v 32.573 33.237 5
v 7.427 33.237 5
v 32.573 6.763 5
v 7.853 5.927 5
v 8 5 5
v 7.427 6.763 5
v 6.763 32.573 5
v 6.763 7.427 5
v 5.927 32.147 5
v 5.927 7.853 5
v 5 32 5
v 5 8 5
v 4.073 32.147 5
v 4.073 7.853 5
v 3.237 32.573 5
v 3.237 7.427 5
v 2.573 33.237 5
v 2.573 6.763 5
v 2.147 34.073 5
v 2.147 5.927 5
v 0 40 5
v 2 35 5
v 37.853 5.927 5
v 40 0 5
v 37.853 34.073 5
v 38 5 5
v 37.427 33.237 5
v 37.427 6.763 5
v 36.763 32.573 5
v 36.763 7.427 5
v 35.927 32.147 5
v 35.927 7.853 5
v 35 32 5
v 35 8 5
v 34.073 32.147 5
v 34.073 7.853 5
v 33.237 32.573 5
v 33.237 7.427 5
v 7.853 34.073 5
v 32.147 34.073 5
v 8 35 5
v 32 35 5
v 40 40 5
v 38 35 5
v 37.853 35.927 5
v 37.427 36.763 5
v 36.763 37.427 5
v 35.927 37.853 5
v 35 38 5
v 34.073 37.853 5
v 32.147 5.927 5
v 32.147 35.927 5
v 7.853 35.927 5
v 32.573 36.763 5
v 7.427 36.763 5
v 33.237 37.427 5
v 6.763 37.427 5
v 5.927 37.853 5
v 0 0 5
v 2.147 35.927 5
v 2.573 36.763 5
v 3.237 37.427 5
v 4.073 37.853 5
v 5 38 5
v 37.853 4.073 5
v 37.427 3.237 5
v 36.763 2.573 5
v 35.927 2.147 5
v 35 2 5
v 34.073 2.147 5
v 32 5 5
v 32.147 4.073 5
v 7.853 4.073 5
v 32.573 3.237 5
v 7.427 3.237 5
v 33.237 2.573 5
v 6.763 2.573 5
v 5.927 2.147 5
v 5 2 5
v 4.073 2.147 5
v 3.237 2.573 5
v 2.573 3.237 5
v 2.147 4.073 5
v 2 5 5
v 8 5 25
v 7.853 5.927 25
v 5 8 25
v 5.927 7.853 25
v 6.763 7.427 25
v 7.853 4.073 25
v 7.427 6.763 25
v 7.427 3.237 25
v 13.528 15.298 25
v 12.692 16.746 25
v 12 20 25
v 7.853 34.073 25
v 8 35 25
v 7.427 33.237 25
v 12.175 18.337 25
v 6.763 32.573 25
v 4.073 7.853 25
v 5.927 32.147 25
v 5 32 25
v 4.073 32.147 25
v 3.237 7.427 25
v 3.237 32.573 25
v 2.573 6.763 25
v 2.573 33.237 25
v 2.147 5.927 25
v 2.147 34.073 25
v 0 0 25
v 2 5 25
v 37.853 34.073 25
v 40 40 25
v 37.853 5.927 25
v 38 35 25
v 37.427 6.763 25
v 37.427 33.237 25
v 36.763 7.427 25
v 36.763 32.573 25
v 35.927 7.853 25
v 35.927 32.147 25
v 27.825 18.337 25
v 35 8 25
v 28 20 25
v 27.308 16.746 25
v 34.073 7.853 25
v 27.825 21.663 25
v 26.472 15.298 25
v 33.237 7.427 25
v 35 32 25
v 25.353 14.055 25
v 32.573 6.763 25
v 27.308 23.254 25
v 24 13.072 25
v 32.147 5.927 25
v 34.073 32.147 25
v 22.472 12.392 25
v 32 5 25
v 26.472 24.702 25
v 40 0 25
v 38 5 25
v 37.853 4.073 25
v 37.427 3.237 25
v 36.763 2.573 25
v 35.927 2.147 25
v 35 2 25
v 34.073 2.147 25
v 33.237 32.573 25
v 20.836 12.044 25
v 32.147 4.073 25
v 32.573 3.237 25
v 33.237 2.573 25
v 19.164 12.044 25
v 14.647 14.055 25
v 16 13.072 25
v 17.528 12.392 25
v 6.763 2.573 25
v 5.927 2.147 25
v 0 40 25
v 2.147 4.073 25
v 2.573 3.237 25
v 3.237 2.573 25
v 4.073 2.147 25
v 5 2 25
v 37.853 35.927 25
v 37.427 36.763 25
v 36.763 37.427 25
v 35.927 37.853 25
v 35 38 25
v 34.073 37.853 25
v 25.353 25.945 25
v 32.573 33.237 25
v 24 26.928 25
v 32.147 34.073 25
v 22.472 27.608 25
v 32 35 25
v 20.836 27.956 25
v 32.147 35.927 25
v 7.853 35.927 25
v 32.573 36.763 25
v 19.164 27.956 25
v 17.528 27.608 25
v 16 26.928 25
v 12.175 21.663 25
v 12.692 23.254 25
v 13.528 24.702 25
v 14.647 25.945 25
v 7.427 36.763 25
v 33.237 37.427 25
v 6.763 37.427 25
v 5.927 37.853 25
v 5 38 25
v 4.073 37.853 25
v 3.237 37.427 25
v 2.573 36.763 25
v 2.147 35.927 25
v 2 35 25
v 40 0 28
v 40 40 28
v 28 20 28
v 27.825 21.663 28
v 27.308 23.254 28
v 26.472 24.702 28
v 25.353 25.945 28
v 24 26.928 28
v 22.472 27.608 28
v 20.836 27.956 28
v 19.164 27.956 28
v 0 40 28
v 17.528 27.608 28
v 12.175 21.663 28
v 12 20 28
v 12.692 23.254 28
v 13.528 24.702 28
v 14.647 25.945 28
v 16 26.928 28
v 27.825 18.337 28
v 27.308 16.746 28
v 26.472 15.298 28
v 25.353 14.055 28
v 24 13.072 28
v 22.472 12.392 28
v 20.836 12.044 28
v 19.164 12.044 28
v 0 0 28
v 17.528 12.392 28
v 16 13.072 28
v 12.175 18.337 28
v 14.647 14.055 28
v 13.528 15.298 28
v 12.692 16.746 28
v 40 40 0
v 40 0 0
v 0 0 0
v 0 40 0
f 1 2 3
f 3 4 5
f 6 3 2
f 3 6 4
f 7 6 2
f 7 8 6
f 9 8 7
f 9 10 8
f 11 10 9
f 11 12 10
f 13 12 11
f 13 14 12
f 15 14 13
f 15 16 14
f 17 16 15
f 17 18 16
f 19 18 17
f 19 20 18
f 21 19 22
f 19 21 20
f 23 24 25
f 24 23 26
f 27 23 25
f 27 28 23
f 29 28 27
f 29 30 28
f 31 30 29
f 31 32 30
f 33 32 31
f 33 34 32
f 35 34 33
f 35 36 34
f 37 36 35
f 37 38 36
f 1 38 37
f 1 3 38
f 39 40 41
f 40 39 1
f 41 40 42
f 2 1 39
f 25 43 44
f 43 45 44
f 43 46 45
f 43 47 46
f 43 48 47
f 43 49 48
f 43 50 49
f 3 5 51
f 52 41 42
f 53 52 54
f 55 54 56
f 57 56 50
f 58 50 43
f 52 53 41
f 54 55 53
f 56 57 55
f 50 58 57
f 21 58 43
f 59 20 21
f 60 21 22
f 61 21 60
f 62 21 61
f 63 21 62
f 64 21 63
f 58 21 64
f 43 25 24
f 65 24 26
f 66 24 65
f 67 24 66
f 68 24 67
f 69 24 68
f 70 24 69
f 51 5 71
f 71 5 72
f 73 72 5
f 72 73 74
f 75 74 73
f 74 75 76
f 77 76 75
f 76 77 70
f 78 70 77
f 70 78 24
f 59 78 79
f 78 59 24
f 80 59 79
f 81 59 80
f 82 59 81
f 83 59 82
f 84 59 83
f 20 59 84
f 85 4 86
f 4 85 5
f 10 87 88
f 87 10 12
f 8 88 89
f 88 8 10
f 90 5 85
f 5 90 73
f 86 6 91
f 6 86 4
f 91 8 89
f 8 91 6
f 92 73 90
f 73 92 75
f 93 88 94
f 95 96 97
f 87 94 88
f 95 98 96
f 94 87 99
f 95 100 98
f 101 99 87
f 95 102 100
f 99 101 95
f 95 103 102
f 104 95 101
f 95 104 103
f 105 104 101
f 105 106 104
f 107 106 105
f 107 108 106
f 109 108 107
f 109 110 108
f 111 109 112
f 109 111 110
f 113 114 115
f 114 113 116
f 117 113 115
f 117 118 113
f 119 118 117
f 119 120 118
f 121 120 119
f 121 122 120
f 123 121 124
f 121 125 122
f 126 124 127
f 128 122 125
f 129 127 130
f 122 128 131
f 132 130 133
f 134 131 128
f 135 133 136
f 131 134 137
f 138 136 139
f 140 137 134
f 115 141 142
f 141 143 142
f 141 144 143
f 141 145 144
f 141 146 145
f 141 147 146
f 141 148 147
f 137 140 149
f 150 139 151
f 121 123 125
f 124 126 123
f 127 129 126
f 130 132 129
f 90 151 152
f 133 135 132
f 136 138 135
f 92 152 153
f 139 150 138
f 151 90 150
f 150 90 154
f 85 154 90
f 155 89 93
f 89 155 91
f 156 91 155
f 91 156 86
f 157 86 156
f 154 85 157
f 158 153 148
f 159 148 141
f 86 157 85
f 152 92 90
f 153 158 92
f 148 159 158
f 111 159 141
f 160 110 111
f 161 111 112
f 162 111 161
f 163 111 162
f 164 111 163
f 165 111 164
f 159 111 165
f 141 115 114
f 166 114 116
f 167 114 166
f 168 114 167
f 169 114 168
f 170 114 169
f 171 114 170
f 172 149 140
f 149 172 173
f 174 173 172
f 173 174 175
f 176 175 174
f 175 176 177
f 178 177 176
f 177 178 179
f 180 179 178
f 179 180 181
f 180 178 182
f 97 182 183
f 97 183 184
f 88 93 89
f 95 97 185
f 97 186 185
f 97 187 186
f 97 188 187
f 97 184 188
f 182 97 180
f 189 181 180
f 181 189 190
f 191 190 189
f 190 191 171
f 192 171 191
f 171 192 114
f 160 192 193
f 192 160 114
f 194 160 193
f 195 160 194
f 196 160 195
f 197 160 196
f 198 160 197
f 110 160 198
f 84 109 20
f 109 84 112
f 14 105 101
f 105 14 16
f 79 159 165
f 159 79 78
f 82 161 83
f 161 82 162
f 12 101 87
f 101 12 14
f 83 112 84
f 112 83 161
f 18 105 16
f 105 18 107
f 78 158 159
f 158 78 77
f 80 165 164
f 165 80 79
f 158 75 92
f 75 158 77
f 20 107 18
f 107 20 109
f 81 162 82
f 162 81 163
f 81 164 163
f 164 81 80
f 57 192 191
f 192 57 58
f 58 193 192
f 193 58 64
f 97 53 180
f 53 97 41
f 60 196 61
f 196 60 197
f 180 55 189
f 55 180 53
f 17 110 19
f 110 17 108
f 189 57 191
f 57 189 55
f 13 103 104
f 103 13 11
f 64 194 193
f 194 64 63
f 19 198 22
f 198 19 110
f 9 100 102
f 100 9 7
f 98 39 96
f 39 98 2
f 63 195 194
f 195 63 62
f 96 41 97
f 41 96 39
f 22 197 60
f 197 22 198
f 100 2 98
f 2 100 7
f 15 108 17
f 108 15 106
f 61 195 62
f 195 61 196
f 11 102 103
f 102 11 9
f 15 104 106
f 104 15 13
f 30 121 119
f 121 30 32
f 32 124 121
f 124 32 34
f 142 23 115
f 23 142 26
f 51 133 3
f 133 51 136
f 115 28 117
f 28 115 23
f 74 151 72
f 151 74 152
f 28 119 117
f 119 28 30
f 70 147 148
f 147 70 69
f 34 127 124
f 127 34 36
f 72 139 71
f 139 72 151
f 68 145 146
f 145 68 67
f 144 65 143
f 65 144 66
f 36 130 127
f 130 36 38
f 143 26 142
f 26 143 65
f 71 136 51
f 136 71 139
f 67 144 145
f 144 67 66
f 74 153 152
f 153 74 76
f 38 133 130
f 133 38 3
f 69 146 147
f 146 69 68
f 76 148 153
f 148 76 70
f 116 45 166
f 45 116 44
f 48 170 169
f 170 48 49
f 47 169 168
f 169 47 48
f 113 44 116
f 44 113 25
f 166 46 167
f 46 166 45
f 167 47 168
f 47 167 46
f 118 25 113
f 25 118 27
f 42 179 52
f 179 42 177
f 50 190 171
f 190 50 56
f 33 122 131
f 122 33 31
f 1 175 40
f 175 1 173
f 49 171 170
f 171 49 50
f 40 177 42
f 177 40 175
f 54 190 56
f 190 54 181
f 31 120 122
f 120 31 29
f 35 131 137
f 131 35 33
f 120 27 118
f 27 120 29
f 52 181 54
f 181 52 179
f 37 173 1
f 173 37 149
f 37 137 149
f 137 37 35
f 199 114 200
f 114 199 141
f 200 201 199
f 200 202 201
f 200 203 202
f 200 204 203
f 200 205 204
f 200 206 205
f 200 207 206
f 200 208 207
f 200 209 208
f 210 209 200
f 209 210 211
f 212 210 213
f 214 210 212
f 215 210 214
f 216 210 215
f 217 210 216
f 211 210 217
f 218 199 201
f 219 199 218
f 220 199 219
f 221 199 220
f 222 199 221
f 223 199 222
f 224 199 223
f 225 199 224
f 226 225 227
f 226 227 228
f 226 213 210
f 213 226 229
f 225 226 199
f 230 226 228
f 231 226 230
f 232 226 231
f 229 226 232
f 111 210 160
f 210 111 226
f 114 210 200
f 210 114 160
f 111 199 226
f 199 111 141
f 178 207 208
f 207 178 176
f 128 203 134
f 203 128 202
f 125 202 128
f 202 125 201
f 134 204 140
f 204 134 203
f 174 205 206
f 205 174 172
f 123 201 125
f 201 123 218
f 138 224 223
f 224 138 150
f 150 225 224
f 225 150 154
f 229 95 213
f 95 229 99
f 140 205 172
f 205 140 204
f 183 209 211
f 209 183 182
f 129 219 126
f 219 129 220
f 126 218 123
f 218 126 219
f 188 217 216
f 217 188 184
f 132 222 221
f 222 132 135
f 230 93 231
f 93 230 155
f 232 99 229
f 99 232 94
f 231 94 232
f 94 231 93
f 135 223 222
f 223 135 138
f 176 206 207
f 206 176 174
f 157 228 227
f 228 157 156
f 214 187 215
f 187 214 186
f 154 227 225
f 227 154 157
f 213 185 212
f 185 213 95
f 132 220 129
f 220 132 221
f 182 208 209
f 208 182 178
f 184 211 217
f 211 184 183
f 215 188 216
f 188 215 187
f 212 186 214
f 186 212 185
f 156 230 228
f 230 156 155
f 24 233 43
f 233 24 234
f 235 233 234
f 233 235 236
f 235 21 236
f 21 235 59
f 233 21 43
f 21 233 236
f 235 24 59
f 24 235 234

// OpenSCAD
// Complex assembly with multiple parts
// Base plate
cube([40, 40, 5]);

// Pillars
for (x = [5, 35], y = [5, 35]) {
    translate([x, y, 5])
        cylinder(h = 20, r = 3, $fn = 20);
}

// Top plate with hole
translate([0, 0, 25])
    difference() {
        cube([40, 40, 3]);
        translate([20, 20, -1])
            cylinder(h = 5, r = 8, $fn = 30);
    }
